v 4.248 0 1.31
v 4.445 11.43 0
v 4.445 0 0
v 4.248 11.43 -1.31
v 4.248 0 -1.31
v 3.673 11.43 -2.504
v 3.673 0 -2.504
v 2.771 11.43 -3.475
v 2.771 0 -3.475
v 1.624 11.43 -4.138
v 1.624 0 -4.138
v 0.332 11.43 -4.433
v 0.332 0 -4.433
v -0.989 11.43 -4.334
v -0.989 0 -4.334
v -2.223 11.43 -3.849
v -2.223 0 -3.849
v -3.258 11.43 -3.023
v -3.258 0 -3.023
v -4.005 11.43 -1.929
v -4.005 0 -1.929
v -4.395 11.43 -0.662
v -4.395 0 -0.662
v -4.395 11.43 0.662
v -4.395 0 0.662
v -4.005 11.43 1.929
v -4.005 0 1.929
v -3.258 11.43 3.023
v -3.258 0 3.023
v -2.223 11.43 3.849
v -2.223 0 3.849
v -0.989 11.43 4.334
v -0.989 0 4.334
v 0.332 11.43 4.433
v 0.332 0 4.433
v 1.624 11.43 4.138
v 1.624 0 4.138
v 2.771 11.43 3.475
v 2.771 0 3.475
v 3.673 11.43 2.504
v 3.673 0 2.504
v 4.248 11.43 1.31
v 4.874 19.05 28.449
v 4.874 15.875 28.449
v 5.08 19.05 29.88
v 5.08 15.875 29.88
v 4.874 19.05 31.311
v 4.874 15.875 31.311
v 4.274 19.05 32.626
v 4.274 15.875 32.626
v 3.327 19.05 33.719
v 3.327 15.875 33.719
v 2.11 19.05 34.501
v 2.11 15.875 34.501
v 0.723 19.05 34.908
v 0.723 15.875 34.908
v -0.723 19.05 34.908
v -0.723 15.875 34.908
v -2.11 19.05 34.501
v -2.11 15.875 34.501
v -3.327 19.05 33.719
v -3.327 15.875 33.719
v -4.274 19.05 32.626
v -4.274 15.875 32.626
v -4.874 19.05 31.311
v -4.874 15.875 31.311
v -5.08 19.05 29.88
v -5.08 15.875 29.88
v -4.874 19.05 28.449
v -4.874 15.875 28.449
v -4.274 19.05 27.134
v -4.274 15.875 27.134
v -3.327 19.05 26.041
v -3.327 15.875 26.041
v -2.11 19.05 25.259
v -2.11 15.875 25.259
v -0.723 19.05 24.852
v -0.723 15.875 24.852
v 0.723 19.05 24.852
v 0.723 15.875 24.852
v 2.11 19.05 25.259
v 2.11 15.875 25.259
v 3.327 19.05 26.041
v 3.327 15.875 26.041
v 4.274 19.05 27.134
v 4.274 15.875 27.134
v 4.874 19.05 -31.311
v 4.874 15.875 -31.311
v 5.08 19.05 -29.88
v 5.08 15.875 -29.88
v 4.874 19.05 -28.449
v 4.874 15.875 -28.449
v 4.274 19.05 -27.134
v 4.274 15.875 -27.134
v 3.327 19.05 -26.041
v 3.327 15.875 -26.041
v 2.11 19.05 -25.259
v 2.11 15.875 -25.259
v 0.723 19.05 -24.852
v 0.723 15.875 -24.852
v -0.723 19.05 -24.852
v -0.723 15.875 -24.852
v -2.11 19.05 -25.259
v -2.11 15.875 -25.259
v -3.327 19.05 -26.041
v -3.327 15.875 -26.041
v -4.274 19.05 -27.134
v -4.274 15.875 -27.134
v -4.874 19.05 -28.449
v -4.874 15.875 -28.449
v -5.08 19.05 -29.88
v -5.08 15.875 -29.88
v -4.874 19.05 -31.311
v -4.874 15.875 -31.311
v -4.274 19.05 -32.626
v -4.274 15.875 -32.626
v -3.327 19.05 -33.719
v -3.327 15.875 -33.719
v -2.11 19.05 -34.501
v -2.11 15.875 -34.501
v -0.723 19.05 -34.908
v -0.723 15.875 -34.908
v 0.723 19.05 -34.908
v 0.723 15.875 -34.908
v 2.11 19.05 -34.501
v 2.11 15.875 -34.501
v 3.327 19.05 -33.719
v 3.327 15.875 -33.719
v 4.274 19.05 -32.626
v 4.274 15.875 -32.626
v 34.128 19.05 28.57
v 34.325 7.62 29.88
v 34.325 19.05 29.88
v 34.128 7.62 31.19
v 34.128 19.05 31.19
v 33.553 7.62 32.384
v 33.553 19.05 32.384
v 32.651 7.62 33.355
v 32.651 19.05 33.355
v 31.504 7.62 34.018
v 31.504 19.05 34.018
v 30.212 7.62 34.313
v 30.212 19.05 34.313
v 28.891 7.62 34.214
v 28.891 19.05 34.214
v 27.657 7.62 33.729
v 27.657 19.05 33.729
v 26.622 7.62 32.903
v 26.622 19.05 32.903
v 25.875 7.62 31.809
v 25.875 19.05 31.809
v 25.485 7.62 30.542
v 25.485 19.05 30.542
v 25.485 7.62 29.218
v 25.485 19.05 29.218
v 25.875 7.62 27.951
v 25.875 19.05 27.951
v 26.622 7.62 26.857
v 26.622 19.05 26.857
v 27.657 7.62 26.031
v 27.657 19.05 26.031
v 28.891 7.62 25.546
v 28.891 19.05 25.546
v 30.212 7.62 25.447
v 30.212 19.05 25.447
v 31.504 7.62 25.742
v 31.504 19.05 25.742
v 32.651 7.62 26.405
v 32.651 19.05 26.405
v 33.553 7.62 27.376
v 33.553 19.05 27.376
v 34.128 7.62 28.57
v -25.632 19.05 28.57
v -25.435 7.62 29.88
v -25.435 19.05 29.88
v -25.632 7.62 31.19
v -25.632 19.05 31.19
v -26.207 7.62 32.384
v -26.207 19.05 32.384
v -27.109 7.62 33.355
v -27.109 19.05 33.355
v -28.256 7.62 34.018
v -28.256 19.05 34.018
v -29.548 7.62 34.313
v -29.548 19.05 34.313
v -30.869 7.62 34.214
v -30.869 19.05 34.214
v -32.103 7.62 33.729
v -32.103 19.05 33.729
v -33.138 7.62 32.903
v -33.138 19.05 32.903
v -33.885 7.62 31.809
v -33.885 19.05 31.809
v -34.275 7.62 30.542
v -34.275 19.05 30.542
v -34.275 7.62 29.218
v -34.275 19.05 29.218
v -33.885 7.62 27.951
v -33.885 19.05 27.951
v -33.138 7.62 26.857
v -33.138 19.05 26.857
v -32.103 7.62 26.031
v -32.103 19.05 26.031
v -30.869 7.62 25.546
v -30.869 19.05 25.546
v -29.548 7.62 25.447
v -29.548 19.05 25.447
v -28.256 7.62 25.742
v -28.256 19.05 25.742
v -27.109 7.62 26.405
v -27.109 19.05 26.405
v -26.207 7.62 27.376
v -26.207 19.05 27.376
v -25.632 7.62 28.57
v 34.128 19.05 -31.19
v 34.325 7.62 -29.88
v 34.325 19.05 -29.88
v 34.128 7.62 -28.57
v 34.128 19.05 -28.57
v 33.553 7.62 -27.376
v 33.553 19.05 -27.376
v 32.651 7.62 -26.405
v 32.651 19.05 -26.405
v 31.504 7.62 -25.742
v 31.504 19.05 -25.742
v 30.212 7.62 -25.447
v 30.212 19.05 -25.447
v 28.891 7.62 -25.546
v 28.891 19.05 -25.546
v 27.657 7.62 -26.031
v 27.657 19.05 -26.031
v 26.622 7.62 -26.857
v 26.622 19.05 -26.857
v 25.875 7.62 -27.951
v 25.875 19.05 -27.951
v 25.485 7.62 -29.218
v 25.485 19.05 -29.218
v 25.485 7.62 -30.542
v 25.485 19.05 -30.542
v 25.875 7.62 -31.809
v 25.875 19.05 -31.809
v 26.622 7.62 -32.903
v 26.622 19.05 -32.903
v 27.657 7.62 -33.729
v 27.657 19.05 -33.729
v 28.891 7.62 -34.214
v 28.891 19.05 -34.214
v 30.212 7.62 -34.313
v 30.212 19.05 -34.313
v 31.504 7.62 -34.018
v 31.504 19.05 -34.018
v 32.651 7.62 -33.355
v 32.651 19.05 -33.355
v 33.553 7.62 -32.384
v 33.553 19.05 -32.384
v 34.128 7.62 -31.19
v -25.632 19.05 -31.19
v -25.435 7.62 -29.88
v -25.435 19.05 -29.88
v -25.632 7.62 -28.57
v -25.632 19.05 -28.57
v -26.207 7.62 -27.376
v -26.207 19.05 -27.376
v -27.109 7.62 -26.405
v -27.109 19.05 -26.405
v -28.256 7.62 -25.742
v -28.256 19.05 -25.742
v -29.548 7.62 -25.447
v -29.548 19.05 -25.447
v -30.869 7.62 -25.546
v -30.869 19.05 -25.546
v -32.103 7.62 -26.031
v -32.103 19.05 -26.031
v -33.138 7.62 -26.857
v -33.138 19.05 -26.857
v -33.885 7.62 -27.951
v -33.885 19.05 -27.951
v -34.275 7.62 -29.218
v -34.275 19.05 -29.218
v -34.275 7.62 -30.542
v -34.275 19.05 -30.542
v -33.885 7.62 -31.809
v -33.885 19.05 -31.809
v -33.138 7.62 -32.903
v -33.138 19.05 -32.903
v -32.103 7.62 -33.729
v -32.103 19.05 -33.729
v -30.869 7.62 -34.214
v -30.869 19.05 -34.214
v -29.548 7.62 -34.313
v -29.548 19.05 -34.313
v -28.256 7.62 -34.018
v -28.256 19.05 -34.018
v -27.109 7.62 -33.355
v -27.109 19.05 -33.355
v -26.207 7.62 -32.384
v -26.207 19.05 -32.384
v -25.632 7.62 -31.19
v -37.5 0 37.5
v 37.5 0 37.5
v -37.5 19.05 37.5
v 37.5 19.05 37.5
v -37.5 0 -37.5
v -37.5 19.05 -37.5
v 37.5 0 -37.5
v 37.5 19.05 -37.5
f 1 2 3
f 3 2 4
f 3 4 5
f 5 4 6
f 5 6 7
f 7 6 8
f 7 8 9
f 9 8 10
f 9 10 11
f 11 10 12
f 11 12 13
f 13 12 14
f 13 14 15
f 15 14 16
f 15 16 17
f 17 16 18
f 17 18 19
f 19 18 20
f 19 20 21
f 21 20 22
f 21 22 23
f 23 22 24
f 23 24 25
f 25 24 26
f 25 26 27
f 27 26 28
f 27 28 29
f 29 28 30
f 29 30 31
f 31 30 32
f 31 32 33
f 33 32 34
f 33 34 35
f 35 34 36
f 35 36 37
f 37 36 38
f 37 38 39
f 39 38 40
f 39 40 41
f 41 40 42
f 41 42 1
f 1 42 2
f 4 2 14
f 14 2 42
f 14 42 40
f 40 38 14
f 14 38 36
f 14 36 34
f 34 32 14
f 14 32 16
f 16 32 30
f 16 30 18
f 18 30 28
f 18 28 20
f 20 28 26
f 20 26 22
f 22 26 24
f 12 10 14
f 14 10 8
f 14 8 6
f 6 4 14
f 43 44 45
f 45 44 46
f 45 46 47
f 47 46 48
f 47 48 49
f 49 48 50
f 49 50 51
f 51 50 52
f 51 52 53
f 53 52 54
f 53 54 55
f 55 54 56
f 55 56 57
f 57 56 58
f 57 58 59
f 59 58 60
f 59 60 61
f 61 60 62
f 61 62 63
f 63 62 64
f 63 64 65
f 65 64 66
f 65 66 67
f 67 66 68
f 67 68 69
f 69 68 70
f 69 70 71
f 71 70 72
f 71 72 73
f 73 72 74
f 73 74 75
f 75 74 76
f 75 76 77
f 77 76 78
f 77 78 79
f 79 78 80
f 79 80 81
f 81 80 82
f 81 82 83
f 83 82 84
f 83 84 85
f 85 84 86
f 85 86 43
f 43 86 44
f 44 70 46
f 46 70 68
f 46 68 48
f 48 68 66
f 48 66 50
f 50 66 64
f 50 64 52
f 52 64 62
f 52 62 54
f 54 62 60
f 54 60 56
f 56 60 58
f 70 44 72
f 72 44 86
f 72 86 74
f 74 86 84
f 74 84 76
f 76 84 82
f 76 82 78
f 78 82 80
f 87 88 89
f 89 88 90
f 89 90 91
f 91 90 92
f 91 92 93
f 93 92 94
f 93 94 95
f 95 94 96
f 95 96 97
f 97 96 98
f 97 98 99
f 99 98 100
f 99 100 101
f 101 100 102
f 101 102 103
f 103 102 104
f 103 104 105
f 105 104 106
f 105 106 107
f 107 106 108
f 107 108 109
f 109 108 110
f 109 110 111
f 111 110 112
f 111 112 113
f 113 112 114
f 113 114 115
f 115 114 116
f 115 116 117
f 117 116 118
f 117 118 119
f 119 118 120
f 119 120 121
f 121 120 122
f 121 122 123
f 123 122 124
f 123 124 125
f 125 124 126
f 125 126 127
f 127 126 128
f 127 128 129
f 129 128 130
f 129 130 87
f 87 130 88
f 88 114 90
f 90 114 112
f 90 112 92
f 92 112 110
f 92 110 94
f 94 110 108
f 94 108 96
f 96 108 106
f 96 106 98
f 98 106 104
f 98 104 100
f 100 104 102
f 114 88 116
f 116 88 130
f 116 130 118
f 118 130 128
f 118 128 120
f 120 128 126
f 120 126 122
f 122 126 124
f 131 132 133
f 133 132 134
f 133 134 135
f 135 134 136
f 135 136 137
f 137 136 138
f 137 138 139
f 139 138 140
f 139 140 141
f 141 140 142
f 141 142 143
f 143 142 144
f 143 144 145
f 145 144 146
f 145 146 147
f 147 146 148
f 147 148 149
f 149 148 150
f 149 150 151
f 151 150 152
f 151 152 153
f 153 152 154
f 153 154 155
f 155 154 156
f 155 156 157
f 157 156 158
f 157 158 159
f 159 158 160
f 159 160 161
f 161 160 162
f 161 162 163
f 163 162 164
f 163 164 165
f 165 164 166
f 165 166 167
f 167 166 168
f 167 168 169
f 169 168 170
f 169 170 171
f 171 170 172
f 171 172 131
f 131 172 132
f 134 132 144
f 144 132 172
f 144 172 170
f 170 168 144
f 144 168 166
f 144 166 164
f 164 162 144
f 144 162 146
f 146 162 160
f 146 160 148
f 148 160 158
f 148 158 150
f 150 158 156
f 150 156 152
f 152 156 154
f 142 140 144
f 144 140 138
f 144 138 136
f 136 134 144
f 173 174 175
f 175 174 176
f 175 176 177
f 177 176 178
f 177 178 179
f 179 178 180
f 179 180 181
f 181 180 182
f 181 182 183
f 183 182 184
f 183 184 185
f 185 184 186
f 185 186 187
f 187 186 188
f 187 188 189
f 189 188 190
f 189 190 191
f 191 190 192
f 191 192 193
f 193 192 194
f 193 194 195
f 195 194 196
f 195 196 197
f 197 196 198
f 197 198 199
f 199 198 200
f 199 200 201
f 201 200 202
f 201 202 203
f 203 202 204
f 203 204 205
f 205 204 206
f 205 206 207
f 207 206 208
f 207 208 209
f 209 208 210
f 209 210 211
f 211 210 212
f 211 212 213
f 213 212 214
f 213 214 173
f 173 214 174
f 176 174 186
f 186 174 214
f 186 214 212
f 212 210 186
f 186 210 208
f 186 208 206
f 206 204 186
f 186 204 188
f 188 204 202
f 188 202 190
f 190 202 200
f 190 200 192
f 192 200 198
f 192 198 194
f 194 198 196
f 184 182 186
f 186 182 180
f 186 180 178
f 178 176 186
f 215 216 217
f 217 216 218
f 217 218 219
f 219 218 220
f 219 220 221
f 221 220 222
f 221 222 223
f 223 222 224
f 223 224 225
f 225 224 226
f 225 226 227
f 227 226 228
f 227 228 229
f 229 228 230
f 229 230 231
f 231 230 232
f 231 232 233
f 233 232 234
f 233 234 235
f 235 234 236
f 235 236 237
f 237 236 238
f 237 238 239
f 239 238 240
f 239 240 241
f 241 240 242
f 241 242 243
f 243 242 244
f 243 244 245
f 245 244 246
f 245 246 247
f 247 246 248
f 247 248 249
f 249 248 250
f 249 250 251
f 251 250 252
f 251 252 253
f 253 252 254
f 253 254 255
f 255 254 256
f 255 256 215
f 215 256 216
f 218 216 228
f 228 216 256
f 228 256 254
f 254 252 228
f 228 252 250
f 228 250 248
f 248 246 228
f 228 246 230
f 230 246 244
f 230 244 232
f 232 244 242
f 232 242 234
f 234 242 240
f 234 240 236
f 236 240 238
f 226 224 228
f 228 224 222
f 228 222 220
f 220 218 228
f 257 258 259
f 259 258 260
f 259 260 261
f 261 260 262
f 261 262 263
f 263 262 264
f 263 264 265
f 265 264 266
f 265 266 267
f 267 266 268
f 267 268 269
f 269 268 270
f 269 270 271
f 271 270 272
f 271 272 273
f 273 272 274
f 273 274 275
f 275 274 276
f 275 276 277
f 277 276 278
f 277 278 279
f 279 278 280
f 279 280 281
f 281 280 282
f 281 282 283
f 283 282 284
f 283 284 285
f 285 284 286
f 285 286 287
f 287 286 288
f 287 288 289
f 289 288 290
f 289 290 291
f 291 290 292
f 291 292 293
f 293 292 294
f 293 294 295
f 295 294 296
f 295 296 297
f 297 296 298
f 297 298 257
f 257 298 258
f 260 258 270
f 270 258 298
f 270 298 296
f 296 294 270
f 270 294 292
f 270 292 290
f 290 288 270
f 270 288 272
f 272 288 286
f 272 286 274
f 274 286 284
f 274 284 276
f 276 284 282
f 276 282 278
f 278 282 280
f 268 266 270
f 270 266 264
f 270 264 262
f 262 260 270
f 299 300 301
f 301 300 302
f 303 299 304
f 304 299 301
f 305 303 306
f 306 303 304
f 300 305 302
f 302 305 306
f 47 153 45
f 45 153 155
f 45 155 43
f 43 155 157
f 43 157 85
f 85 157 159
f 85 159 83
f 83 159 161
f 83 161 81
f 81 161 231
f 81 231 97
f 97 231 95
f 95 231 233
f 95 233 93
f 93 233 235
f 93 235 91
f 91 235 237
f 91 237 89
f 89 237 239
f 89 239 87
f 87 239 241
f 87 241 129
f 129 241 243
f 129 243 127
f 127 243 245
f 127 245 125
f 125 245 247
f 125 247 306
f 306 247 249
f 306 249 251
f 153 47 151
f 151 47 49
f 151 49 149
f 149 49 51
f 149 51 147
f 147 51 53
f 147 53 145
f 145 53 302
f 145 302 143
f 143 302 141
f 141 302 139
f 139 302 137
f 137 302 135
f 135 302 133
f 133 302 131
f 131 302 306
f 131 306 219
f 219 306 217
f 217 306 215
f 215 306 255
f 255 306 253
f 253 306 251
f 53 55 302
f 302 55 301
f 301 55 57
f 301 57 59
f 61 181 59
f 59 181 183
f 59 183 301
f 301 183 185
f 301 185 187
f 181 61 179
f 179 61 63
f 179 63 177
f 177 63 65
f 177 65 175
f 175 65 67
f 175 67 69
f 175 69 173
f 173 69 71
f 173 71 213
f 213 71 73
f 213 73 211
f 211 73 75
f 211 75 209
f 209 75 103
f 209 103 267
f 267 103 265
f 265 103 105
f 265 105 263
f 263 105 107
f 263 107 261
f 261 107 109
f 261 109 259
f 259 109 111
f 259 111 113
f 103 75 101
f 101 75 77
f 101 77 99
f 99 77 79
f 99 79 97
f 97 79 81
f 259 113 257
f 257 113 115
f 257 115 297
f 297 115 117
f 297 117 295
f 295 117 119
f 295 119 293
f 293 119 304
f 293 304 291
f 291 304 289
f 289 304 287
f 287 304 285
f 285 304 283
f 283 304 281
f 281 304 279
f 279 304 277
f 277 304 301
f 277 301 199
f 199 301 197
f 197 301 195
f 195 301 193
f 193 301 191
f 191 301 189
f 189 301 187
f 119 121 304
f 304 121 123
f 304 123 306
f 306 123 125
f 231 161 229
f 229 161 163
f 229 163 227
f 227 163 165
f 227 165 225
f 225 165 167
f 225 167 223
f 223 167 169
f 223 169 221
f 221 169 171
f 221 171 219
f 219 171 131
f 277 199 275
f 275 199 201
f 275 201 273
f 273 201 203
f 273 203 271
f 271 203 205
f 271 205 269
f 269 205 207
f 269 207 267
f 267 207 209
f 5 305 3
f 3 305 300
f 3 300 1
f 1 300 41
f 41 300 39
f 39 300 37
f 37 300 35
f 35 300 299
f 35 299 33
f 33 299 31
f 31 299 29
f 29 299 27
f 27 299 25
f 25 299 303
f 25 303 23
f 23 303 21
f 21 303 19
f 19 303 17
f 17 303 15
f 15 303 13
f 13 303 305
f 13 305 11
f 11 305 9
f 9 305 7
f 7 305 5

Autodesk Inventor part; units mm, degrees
ref_plane "YZ Plane" through (0, 0, 0) normal (1, 0, 0) x (0, 1, 0)
ref_plane "XZ Plane" through (0, 0, 0) normal (0, 1, 0) x (-1, 0, 0)
ref_plane "XY Plane" through (0, 0, 0) normal (0, 0, 1) x (1, 0, 0)
sketch "Sketch1" plane through (0, 0, 0) normal (0, 1, 0) x (-1, 0, 0)
  line L0 (37.5, 37.5) -> (-37.5, 37.5)
  line L1 (-37.5, 37.5) -> (-37.5, -37.5)
  line L2 (-37.5, -37.5) -> (37.5, -37.5)
  line L3 (37.5, -37.5) -> (37.5, 37.5)
  point P0 (0, 0)
  dimension "d0" = 75
  dimension "d1" = 75
  dimension "d2" = 37.5
  dimension "d3" = 37.5
extrude "Extrusion1" add sketch "Sketch1" along normal blind 19.05
sketch "Sketch3" plane through (0, 19.05, 0) normal (0, 1, 0) x (1, 0, 0)
  line L0 (-37.5, 37.5) -> (-37.5, -37.5) projected
  line L1 (37.5, 37.5) -> (-37.5, 37.5) projected
  point P0 (0, 0)
  point P1 (-29.88, 29.88)
  dimension "d27" = 7.62
  dimension "d28" = 7.62
hole "Hole2" at (-29.88, 19.05, -29.88) direction (0, -1, 0) diameter 8.89 depth 11.43
pattern_linear "Rectangular Pattern1" count 2 spacing 59.76 along (1, 0, 0) count 2 spacing 59.76 along (0, 0, 1) of "Hole2"
sketch "Sketch4" plane through (0, 19.05, 0) normal (0, 1, 0) x (1, 0, 0)
  line L0 (37.5, 37.5) -> (-37.5, 37.5) projected
  point P0 (0, 0)
  point P1 (0, 29.88)
  dimension "d36" = 0
  dimension "d37" = 7.62
hole "Hole3" at (0, 19.05, -29.88) direction (0, -1, 0) diameter 10.16 depth 3.175
mirror "Mirror1" about plane through (0, 0, 0) normal (0, 0, 1) of "Hole3"
sketch "Sketch5" plane through (0, 0, 0) normal (0, -1, 0) x (1, 0, 0)
  point P0 (0, 0)
  point P1 (0, 0)
hole "Hole4" at (0, 0, 0) direction (0, 1, 0) diameter 8.89 depth 11.43
properties part number "antennaTripodMount"
